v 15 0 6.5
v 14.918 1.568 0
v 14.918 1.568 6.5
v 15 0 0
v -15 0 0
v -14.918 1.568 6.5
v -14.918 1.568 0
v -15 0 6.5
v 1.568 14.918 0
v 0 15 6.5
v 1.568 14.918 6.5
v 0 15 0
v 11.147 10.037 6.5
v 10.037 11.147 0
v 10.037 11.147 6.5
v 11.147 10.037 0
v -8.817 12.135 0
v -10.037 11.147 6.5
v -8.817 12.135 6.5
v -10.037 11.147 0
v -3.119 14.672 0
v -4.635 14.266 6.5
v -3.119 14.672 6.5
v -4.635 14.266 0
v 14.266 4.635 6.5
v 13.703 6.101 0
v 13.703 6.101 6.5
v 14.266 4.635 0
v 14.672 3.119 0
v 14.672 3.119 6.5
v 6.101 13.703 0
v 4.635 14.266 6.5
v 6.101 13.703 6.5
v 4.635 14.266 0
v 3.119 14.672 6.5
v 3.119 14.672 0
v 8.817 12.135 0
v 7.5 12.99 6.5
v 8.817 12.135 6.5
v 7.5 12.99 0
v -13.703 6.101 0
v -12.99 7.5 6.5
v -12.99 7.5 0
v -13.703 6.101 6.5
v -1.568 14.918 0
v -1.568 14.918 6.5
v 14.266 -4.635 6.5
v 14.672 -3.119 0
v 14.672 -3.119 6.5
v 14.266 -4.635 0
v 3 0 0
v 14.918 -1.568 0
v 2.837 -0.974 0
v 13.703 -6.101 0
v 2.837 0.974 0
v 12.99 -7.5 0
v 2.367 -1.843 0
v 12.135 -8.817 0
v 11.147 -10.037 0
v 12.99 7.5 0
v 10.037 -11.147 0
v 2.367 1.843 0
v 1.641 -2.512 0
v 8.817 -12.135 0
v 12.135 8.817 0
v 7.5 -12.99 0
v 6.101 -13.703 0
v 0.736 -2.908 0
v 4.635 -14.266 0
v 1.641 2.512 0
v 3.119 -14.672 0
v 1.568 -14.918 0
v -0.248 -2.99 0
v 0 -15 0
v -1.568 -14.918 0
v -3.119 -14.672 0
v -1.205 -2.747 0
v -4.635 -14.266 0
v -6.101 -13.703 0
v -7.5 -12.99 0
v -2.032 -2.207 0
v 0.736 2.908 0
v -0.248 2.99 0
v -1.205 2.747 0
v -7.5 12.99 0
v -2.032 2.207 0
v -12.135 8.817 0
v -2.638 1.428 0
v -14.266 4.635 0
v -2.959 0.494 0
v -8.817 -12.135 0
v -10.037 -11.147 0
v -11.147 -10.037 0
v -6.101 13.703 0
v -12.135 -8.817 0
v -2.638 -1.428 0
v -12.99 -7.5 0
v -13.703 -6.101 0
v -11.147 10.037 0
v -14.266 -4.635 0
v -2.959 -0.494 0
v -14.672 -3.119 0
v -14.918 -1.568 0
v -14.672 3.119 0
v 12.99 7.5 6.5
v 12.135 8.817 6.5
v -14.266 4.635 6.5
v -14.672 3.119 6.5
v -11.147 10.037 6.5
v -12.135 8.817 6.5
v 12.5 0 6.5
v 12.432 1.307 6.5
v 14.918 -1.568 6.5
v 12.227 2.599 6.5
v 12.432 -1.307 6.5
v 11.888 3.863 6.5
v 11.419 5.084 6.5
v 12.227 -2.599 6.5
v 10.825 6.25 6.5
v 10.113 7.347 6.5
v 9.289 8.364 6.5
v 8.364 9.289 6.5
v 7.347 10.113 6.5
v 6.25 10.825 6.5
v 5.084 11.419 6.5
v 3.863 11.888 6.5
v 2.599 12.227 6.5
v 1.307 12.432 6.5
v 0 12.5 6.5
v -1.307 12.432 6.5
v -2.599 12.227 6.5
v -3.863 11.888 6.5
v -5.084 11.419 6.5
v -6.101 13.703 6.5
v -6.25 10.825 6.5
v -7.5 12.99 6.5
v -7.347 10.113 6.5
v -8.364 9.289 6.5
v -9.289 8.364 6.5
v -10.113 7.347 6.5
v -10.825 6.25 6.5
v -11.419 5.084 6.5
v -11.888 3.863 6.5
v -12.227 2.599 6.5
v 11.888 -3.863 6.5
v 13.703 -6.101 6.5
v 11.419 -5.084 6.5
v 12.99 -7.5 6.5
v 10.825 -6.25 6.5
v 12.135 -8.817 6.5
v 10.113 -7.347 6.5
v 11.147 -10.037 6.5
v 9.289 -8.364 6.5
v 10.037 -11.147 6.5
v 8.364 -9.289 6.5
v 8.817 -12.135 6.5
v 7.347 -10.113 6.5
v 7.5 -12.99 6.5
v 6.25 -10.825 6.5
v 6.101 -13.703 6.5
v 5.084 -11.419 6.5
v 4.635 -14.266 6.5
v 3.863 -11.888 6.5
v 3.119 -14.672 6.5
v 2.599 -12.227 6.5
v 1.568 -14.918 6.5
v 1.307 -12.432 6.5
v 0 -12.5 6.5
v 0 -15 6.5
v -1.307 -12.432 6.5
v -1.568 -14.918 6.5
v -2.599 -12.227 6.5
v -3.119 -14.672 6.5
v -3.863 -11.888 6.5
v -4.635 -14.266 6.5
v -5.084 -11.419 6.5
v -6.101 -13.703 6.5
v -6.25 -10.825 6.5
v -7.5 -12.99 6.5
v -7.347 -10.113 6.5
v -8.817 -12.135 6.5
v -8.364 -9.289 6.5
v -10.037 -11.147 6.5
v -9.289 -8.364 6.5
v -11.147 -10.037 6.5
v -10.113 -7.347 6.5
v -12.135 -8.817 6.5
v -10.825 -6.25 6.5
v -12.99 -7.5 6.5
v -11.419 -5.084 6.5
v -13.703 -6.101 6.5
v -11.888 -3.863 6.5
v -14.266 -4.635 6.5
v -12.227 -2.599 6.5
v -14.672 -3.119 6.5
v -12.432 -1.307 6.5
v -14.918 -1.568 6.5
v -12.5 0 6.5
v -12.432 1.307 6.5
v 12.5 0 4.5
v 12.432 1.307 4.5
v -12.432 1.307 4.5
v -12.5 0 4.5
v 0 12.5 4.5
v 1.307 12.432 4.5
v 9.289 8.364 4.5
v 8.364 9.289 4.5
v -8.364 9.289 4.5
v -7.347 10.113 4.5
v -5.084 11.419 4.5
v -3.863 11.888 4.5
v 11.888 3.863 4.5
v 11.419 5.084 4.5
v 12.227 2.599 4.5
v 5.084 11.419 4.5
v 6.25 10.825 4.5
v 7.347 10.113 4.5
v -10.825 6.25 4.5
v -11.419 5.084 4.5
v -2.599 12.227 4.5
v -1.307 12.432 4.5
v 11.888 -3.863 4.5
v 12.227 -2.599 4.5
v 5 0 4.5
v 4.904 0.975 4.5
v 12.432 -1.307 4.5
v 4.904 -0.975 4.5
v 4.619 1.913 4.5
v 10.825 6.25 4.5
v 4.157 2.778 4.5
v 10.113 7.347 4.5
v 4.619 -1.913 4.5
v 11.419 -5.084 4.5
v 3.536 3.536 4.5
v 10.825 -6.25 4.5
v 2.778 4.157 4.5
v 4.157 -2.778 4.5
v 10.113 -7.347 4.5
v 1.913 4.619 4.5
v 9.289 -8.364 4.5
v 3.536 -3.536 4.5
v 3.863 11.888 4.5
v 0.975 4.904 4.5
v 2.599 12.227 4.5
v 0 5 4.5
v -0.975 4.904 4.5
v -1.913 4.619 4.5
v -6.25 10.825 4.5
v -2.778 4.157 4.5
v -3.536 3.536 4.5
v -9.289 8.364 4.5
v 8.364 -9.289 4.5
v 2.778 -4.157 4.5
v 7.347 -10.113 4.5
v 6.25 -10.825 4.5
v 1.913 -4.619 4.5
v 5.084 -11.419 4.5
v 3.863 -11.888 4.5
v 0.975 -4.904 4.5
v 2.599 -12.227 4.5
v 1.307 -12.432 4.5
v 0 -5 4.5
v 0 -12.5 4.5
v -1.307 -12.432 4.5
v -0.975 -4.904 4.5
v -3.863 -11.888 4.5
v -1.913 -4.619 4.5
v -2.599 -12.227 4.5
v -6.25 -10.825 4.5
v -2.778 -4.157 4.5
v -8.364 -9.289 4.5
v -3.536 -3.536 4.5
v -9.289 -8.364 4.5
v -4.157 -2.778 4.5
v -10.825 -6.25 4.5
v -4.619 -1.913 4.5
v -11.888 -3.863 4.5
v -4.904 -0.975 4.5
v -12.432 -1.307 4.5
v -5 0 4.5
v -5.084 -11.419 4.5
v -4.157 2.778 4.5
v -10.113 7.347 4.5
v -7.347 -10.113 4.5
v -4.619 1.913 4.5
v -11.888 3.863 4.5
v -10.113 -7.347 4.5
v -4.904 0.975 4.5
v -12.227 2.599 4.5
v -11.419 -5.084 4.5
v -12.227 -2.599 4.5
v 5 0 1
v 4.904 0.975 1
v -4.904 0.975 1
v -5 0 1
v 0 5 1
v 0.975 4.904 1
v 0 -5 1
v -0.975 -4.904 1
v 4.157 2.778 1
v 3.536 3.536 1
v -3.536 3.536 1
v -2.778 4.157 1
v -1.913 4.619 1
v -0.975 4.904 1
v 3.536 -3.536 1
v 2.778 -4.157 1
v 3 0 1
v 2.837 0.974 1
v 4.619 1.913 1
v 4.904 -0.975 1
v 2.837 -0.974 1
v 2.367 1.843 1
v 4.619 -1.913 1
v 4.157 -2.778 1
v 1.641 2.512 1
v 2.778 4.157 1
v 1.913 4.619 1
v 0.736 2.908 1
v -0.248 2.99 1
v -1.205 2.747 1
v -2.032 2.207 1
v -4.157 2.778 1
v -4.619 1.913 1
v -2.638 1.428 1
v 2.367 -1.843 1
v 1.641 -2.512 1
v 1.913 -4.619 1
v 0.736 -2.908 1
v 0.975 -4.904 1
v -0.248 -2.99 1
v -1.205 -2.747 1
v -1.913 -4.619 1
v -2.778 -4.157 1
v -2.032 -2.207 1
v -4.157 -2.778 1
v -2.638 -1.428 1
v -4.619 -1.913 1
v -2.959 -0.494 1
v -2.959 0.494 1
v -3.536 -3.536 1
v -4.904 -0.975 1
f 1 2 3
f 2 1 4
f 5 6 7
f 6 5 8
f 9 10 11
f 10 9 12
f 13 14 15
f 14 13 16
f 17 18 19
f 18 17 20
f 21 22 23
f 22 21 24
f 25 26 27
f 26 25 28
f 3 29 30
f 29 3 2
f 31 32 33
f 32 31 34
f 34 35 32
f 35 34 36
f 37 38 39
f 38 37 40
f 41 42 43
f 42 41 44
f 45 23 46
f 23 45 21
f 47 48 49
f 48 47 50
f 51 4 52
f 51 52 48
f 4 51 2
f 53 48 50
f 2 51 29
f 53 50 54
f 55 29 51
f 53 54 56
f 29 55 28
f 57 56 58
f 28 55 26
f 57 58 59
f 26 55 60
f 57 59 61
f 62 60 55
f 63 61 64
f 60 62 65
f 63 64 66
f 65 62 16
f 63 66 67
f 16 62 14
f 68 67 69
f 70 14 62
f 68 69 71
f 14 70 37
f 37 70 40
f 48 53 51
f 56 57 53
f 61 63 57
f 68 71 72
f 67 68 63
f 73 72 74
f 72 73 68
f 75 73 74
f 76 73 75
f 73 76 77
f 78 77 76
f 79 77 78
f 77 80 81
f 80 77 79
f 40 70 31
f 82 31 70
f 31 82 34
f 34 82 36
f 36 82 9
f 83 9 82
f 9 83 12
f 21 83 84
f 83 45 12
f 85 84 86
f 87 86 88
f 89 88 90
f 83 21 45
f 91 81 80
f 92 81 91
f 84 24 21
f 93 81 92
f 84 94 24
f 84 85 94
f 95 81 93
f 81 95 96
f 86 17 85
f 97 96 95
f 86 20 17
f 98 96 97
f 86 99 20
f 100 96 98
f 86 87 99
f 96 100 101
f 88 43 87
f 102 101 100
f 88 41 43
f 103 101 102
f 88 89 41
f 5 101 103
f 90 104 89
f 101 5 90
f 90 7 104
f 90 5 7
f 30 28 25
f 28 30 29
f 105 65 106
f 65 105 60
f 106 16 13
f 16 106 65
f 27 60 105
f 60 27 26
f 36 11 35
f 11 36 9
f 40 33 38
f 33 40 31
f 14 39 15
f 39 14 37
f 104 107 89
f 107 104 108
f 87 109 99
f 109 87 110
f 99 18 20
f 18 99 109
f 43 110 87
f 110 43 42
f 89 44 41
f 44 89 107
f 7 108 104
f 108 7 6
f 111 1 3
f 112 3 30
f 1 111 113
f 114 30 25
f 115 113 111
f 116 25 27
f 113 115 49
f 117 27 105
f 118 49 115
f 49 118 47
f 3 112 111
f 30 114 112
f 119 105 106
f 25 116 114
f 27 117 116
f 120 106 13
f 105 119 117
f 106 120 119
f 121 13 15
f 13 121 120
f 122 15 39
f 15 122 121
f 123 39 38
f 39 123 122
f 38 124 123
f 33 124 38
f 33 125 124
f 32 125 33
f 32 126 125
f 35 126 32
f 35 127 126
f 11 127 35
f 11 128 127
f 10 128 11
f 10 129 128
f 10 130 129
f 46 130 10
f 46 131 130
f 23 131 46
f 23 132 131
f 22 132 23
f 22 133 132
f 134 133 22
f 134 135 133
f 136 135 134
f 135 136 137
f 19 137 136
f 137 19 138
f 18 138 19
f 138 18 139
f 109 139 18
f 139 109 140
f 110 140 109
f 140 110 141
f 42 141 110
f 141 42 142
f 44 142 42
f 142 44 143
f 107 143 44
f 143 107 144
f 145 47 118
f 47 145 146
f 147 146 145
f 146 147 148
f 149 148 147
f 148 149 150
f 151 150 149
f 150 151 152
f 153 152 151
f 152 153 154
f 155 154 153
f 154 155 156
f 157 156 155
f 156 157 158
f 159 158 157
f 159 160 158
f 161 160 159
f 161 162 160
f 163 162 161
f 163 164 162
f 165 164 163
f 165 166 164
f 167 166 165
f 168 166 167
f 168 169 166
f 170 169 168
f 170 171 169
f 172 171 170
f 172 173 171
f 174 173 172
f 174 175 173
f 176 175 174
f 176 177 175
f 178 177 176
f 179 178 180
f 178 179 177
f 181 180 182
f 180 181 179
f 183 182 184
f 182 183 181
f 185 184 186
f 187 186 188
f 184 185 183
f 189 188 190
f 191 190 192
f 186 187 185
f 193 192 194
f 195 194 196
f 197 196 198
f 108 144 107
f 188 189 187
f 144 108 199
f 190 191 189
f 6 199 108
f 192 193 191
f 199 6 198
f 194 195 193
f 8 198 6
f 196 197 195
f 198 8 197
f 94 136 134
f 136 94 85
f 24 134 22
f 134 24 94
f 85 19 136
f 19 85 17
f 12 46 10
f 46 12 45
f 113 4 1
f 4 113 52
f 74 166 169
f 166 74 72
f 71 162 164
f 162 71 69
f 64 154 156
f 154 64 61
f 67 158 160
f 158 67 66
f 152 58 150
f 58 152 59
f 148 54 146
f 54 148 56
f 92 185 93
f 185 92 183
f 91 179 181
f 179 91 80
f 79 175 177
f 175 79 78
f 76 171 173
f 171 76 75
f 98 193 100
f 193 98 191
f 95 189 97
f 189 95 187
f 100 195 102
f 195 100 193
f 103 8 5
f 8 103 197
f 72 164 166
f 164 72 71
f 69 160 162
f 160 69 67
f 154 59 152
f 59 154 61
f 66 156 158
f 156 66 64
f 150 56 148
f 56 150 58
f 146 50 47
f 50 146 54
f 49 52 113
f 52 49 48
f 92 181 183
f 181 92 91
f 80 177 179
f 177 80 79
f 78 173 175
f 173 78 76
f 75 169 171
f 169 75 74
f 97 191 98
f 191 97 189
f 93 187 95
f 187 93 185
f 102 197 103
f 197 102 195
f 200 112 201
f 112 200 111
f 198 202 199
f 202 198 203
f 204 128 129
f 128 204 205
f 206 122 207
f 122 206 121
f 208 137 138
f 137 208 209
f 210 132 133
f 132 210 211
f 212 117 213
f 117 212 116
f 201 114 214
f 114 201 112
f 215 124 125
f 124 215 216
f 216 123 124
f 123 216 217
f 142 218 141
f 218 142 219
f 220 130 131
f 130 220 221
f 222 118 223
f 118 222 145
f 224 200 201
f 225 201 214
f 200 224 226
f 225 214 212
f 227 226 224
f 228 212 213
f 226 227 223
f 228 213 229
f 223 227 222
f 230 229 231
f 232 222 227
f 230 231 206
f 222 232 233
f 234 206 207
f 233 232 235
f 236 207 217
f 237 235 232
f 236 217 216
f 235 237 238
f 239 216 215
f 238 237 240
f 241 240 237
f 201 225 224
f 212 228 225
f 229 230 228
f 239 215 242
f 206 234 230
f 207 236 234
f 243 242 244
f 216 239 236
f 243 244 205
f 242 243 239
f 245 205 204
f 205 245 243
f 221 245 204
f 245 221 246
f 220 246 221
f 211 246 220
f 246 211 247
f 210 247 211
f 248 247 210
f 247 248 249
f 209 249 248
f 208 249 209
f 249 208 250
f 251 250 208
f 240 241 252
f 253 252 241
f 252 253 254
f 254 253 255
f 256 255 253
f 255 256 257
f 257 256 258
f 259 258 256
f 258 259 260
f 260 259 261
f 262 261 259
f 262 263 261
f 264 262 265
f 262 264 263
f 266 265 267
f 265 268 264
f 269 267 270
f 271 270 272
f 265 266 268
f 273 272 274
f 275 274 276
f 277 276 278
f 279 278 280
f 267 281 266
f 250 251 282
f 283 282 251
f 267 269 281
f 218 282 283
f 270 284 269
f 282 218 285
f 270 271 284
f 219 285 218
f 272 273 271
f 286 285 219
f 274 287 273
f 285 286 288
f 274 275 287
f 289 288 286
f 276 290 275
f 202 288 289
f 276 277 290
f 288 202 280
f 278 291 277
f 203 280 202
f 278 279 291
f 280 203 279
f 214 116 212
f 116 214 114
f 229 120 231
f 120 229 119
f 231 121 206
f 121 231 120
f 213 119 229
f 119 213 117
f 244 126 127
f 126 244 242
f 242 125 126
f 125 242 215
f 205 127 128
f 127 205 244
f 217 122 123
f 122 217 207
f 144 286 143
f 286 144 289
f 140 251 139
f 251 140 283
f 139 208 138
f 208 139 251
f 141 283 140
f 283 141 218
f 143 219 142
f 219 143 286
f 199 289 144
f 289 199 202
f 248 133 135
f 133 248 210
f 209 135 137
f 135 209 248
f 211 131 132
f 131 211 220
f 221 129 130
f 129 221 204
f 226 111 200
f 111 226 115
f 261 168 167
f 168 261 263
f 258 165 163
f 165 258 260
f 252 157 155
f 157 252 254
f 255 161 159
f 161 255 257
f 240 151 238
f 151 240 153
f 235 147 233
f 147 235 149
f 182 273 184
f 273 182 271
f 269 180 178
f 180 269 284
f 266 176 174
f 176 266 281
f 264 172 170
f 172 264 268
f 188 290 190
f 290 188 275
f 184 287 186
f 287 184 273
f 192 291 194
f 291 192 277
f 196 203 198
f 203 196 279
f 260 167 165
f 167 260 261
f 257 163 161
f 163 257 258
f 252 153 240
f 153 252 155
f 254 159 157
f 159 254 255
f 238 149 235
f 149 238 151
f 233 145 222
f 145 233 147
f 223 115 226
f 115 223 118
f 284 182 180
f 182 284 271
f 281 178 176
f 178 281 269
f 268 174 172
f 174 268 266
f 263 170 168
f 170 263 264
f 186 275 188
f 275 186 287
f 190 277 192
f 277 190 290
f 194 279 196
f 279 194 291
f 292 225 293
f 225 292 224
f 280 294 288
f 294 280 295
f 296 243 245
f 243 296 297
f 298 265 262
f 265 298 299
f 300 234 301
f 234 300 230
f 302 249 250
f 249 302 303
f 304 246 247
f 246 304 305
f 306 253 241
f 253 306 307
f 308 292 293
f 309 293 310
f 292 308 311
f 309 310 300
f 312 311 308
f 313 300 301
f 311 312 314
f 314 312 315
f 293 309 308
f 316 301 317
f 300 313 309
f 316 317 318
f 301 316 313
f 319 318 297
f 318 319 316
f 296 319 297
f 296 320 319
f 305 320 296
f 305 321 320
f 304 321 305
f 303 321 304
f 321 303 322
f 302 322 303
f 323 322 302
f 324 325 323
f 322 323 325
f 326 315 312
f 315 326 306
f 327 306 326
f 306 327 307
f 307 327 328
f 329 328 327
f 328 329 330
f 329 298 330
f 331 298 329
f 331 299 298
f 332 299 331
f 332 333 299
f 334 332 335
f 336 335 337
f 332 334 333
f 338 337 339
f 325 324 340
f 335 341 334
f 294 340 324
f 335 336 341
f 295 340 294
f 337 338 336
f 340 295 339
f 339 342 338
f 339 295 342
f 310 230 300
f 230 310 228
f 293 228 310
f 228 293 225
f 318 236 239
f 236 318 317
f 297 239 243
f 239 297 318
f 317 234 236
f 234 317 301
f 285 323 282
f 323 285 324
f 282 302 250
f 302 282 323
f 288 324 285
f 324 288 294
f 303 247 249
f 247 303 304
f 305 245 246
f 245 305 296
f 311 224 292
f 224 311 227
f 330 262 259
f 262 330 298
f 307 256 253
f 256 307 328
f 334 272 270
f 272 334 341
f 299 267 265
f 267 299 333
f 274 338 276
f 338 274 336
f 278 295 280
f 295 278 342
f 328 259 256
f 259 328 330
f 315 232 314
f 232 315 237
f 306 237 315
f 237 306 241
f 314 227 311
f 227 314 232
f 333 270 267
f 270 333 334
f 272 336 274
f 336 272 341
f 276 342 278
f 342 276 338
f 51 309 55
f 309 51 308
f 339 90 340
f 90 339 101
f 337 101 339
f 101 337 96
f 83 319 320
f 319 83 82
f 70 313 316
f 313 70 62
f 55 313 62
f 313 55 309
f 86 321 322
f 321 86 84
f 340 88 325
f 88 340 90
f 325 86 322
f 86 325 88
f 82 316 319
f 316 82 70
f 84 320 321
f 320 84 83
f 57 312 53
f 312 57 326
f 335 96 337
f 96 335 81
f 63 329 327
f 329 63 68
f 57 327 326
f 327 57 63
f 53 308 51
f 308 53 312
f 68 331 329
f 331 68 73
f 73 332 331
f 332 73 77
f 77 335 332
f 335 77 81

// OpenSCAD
$fs = 1;
$fa = 6;

difference() {
  cylinder(d=30, h=1 + 3.5 + 2, center=false);
  translate([0,0,1 + 3.5]) cylinder(d=25, h=100, center=false);
  translate([0,0,1]) cylinder(d=10, h=100, center=false);
  cylinder(d=6, h=100, center=true);
}
